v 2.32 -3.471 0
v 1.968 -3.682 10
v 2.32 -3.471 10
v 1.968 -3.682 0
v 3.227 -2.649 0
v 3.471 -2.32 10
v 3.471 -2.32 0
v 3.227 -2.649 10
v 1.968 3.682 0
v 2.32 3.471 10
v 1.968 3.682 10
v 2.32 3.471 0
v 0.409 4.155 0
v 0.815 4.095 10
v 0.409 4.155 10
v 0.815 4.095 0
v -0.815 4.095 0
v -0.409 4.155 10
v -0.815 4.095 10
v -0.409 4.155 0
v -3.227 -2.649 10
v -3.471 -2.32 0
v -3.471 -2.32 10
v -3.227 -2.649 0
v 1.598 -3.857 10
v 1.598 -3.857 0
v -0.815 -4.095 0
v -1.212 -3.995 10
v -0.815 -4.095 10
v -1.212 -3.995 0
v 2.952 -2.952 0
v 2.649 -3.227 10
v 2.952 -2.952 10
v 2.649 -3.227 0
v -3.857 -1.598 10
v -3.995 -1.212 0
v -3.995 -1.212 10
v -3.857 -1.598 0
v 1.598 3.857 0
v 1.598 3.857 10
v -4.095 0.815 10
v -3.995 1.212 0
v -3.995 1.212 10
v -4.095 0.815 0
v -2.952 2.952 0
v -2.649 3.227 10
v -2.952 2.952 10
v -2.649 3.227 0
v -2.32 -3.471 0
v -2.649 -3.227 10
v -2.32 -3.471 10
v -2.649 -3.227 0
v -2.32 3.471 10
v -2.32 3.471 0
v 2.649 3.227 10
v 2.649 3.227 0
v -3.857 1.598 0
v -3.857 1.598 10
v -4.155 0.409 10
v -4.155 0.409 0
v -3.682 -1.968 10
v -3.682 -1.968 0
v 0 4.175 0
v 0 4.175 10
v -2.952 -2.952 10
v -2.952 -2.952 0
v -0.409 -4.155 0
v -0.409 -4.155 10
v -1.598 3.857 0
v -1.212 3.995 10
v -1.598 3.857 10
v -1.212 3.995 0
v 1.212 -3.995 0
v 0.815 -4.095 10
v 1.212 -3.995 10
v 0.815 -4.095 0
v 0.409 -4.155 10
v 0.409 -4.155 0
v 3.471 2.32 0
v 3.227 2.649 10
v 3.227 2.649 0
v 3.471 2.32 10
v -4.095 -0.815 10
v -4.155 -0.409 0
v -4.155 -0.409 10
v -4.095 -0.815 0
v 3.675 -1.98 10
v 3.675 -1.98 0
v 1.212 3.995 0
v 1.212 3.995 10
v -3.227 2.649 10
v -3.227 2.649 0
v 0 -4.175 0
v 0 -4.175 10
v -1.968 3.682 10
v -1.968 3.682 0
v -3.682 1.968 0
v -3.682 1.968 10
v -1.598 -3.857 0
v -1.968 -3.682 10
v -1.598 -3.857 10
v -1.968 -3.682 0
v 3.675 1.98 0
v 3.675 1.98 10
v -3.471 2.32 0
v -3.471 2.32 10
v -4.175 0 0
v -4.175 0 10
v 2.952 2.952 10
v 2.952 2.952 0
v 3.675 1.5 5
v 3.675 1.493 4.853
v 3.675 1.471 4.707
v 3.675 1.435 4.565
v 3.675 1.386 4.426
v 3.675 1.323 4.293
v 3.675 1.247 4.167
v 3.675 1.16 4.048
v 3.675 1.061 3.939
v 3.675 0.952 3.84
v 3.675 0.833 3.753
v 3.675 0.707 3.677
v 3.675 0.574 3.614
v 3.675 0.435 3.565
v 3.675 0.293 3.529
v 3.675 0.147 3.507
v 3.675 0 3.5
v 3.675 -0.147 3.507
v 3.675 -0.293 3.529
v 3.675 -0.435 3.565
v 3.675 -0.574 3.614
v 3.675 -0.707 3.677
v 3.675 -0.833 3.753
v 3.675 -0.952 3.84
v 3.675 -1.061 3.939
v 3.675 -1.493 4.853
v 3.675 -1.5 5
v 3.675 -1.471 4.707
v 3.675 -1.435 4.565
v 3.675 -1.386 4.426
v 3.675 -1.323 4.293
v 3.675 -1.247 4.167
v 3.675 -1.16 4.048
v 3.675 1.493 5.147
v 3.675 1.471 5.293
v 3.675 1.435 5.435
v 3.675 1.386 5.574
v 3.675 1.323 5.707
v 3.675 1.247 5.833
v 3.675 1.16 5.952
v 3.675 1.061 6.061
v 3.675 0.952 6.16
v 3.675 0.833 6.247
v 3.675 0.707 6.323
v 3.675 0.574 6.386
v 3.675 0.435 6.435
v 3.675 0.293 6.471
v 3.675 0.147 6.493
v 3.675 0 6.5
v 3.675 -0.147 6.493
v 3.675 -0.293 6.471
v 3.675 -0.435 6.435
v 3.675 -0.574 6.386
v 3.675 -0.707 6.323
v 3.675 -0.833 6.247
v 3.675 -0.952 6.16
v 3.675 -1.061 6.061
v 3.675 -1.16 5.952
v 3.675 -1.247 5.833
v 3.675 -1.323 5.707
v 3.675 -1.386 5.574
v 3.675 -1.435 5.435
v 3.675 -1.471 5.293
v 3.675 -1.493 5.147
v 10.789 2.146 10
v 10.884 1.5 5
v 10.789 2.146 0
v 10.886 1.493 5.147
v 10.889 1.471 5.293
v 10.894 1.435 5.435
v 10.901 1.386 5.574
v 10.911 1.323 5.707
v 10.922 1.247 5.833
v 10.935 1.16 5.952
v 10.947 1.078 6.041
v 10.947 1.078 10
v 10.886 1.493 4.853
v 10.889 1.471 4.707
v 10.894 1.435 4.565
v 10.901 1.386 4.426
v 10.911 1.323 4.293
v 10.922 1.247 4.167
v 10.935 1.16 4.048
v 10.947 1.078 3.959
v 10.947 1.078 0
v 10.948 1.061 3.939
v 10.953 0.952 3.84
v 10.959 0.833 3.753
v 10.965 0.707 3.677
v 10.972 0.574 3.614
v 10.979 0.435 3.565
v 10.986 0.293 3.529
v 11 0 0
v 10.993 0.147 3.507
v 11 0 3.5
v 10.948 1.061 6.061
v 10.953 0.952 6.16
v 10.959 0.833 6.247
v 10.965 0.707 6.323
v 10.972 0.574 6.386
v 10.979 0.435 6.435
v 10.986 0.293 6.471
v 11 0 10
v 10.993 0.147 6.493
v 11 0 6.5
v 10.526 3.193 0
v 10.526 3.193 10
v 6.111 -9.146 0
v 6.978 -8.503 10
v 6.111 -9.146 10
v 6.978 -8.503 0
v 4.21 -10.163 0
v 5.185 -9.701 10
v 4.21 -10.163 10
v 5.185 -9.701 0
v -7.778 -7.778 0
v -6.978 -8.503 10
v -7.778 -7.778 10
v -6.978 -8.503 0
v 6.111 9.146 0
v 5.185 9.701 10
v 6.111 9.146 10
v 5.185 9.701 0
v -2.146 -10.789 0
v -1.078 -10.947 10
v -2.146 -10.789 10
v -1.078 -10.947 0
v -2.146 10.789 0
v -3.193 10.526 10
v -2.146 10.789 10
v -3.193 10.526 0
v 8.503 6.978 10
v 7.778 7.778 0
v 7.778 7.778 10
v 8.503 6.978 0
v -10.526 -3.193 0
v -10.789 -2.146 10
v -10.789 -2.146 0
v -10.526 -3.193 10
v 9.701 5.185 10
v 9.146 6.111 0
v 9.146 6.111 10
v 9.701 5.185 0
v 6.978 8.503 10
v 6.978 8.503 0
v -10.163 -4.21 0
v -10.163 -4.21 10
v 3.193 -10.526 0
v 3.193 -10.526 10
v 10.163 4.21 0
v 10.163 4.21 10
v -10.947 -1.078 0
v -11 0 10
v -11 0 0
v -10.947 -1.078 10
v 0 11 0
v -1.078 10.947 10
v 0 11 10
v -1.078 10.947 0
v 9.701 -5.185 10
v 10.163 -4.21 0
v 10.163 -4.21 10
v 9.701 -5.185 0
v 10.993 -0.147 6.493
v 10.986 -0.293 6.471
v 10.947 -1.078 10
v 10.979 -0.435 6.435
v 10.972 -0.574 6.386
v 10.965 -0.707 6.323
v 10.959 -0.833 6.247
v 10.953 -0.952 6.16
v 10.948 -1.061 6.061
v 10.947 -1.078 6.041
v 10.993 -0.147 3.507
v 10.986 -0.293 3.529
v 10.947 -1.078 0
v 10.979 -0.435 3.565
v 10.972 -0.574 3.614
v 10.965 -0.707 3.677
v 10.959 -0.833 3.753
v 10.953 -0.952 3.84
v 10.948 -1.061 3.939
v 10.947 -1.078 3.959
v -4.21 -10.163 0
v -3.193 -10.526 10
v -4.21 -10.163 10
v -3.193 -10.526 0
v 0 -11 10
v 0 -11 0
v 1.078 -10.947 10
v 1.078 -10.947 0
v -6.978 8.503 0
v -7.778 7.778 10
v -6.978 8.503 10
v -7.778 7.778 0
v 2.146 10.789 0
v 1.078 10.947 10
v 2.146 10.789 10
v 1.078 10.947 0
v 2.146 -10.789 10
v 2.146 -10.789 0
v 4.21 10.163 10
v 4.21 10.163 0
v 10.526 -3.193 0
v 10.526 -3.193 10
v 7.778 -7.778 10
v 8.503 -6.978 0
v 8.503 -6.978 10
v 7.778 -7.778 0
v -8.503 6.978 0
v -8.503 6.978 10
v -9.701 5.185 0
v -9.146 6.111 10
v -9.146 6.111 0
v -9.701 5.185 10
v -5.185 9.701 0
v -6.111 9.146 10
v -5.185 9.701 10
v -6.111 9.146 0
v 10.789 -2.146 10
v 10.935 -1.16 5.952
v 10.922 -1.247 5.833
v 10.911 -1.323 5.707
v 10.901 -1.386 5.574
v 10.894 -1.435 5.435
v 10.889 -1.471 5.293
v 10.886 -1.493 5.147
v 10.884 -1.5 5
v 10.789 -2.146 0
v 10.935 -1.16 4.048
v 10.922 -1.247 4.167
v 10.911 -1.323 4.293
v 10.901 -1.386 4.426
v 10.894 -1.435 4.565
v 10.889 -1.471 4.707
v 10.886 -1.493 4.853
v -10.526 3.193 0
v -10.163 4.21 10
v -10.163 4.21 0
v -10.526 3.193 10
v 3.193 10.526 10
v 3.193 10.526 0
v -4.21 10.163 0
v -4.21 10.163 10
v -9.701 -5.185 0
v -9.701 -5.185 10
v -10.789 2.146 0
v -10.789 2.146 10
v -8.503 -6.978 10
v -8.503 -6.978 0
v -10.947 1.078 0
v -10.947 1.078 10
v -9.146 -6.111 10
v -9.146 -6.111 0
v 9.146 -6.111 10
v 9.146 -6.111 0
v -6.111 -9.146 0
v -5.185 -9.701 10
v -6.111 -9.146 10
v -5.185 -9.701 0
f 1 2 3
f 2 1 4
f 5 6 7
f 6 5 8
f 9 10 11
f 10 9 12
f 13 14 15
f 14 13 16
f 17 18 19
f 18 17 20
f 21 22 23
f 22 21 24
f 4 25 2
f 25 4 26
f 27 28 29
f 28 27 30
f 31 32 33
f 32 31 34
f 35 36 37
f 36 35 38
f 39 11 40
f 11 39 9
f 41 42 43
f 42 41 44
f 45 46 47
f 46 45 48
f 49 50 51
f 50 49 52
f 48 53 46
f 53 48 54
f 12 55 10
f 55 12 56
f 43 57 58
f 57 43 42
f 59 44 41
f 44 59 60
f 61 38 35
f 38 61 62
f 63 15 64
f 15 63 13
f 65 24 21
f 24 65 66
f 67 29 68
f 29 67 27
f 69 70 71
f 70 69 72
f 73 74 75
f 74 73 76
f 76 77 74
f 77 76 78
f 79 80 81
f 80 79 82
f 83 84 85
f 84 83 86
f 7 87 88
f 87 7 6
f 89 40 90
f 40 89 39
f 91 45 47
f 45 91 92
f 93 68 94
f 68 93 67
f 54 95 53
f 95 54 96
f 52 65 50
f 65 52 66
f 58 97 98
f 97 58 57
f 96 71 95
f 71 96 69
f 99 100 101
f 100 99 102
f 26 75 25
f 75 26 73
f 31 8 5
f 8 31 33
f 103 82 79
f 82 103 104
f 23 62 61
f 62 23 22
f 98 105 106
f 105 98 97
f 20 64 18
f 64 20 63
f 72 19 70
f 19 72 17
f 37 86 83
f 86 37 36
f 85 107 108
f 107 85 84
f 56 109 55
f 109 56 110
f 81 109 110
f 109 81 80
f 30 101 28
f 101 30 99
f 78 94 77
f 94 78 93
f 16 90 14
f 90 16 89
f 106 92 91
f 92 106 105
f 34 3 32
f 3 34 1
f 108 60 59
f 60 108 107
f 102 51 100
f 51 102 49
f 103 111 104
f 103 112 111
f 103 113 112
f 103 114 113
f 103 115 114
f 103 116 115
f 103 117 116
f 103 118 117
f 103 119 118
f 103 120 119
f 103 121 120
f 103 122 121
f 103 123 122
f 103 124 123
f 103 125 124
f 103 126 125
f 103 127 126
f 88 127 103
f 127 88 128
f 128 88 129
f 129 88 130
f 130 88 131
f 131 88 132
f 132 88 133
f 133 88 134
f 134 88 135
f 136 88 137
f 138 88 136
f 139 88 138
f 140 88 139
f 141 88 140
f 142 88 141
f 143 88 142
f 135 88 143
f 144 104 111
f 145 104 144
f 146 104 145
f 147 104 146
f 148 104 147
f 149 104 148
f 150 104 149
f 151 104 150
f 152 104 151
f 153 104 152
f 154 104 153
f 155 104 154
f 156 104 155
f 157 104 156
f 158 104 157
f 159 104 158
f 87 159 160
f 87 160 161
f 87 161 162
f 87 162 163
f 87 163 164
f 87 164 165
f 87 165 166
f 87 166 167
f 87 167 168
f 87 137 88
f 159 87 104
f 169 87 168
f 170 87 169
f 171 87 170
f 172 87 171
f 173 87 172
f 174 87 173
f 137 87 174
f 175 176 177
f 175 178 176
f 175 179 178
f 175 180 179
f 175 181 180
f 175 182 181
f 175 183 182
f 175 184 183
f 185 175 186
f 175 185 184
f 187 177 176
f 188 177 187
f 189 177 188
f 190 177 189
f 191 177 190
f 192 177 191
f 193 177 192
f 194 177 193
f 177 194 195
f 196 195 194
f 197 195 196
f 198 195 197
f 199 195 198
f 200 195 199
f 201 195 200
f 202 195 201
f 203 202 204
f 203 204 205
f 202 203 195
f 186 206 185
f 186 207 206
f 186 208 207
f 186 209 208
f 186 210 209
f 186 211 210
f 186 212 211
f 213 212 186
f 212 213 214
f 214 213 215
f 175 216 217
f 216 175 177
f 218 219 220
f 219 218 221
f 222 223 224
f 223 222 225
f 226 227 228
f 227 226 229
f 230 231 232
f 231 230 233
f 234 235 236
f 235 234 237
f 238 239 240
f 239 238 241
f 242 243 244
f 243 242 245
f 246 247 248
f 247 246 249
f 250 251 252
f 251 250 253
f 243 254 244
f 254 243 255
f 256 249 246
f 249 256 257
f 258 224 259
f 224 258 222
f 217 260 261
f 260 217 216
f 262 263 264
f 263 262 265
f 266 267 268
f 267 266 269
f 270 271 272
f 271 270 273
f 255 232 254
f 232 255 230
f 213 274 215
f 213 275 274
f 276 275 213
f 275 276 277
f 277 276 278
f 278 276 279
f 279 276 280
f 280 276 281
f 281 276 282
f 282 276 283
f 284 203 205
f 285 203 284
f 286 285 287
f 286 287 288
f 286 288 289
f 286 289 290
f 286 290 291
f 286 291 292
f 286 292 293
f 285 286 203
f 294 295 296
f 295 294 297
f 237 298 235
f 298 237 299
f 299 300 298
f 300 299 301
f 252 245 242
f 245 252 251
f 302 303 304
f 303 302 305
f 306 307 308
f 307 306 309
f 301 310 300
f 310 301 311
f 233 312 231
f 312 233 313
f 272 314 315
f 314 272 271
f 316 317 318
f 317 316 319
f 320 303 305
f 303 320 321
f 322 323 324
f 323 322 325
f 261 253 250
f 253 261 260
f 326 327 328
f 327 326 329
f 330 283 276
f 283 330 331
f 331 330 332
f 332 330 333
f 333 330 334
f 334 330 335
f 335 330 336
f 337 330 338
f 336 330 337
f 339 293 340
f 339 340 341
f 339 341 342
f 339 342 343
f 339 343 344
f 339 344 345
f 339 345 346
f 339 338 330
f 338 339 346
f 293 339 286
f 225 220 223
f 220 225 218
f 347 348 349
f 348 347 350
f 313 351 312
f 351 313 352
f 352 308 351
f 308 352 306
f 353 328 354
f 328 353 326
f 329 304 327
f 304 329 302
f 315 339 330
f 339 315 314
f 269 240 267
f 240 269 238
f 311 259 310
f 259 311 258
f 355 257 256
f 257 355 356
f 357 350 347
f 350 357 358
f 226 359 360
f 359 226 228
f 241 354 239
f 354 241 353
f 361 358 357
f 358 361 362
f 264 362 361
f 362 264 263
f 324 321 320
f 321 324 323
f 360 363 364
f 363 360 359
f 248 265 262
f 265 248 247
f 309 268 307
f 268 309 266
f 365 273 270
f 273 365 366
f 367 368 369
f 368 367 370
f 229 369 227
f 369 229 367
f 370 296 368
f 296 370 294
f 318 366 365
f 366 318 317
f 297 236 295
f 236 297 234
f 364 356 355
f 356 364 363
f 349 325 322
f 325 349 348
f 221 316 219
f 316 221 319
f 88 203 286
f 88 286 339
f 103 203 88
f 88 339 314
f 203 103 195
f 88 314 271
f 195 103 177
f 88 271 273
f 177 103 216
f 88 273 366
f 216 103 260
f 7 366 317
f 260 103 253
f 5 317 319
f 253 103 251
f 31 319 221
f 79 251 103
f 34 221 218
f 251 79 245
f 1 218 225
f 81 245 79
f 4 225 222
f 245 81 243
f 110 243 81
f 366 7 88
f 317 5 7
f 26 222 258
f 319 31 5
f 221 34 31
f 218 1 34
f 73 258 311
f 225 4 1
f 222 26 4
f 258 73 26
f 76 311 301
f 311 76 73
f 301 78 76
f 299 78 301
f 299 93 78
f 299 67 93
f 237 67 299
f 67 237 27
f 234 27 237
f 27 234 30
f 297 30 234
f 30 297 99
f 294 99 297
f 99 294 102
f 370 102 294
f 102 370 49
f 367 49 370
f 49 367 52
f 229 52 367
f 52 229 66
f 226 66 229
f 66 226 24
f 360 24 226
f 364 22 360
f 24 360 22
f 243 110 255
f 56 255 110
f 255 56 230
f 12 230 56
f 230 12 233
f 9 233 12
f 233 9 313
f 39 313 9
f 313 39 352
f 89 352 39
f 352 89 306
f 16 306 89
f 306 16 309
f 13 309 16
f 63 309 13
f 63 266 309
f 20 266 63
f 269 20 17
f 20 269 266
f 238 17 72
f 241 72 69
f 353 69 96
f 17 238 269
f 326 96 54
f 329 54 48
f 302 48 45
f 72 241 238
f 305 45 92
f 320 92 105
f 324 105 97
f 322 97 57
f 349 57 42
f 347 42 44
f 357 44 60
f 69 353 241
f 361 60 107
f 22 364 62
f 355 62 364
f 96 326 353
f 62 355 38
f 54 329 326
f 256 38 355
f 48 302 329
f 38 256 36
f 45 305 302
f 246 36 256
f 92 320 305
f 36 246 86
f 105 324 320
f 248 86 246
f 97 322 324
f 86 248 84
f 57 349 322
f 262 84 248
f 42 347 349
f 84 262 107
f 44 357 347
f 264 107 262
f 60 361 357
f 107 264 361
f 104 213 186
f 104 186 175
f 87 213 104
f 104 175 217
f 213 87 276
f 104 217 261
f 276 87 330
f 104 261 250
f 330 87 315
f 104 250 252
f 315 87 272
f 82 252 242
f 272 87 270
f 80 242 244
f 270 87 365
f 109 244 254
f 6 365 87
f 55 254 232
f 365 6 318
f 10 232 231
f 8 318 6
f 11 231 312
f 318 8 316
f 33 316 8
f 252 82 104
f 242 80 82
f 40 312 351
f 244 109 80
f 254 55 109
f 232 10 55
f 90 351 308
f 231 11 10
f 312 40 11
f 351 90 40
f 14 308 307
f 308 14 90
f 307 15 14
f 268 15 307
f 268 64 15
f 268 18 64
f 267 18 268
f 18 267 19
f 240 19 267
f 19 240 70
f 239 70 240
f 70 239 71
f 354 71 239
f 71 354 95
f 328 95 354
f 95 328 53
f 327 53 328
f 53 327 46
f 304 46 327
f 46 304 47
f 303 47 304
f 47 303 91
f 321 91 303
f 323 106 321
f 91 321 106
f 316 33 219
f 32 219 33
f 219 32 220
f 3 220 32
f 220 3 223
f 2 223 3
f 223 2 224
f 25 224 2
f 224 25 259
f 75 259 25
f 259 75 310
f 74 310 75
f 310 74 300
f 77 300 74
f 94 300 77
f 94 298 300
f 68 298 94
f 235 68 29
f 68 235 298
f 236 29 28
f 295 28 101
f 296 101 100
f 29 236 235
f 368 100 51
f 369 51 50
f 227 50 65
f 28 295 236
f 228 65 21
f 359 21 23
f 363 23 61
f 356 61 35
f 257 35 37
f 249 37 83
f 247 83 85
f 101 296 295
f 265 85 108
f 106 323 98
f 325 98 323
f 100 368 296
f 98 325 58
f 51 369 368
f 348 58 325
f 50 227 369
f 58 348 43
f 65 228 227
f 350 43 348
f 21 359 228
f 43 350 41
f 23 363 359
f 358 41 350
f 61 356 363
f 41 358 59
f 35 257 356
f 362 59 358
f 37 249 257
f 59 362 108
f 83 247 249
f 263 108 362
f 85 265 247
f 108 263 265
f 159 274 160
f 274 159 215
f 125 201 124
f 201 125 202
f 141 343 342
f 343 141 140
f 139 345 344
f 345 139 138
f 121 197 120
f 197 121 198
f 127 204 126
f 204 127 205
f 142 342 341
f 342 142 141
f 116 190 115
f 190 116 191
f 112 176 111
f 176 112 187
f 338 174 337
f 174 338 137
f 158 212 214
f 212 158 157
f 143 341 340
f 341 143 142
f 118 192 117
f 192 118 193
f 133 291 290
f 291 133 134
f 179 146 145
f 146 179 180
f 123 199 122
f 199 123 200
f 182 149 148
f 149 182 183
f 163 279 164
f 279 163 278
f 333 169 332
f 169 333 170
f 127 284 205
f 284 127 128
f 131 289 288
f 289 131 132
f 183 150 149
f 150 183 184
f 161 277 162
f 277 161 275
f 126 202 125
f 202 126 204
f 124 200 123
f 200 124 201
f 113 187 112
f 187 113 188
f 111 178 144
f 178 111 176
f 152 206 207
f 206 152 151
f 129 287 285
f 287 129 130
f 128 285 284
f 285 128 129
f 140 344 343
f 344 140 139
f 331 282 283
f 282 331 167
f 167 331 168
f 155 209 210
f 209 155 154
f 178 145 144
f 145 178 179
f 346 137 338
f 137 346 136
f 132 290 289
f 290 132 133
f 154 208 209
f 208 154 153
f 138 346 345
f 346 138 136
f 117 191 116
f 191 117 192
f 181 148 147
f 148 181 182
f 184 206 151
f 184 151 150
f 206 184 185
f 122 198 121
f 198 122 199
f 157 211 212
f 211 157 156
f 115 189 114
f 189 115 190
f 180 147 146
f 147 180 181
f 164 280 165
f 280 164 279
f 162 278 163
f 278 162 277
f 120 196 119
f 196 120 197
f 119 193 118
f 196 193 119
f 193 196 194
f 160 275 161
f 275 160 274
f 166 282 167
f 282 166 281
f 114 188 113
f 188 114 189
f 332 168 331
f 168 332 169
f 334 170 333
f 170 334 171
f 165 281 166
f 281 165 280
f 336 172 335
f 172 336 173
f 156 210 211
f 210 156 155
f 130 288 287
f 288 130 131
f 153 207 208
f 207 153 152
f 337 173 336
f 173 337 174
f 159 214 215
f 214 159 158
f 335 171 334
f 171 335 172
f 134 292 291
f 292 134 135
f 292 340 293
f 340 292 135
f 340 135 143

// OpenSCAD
// file: parameters.scad
// =============================================================================
// Gen-BW — nightly 2026-10-10 (physics_scorer, honest magpylib watts)
// Stacked poles: two Ø20×5 per pocket (10 mm poles), 4 per rotor at R52, trading pole count for field — peak Bz at the copper rises to ≈0.73 T (vs 0.54 T on Gen-BR), which lets a thin 6.75 mm copper layer with a very deep 21 mm build carry the turns. But the electrical frequency halves, and the scorer puts it at about 45 % of Gen-BR: the thicker magnets do not make up for half the poles.
// Clocking 0 deg (magnets N facing S) + D-flat keyed bore + index notch + flip-symmetric hole map.
// Windable 2-piece bobbin; turns = physics_scorer turns_fit; copper only between flanges.
// Steel back-iron: 2× Ø134 × 6.35 mm (1/4") mild-steel discs (steel_backiron_disc.dxf); magnets sit ON the steel
// (through-pockets) -> score with --back-iron. Night 2026-10-10.
// =============================================================================
topology            = "dual_rotor";

// --- Wire / winding (physics_scorer winding-fit) -------------------------------
wire_awg            = 26;
wire_od             = 0.45;     // insulated OD mm (bare 0.405)
fill_realistic      = 0.65;     // insulated-wire area / window (DENSE layered wind with a jig; scorer cap 0.65)
turns               = 586;       // = physics_scorer turns_fit (do NOT raise)
coil_former_type    = "bobbin";
coil_core_inset     = 21.25;     // radial copper build: hub = copper boundary inset by this
wind_build_axial    = 0.0;      // nothing proud of the flanges
wind_build_radial   = 0.0;

// --- Bobbin (base + lid) ---------------------------------------------------------
coil_id_r           = 26.00;    // copper boundary sector
coil_od_r           = 74.00;
span_deg            = 52.72;    // = pitch - 2*asin((wall+0.85)/coil_id_r) -> >=1.2 mm stator web
former_web          = 6.75;     // copper height between flanges (TALL copper: steel keeps Bz up)
flange_t            = 0.80;     // >= 0.8 mm FDM wall rule (tall winds push on the flanges)
wall                = 0.80;     // flange lip beyond copper
former_bare_h       = former_web + 2 * flange_t;
coil_envelope_h     = former_bare_h + 2 * wind_build_axial;
tab_w               = 7.0;
tab_len             = 7.0;
tab_h               = former_bare_h / 2;
pin_d               = 1.9;      // 1.75 mm filament locating pin
coil_mount_r        = coil_od_r + 0.2 + 4.0;
lead_y              = 1.6;
lead_slot_w         = 0.9;
lead_groove_d       = 0.6;

// --- Gap -------------------------------------------------------------------------
run_clear           = 0.50;     // rotor face -> flange
gap_spacer_h        = run_clear + wind_build_axial;
m2m                 = coil_envelope_h + 2 * run_clear;   // rotor face to rotor face (= gap_sleeve length)

// --- Stator ----------------------------------------------------------------------
coil_stations       = 6;
bay_clear           = 0.25;
stator_thick        = former_bare_h;                        // bobbins flush both faces
stator_od           = 166;
shaft_clear_stator  = 14.0;     // stator is static; gap sleeve OD 12 spins inside

// --- Rotor(s) --------------------------------------------------------------------
magnet_Br           = 1.43;     // N52
magnet_d_large      = 20.0;
magnet_h_large      = 10.0;      // two O20x5 stacked per pocket
magnet_h_small      = 5.0;      // unused: no O5 pockets in this kit
halbach_magnetisation = "none";  // NO O5 assist magnets in this kit (scan: they lower the 4-pole score)
rotor_b_same_axis   = true;     // same-index magnets share one axis: N faces S across the gap
large_pocket_d      = 20.3;
small_pocket_d      = 5.3;
pocket_h            = 10.00;     // THROUGH the carrier: magnet back face sits on the steel disc (FLUSH seat: carrier = magnet height, magnet face level with the rotor face)
large_n             = 4;
R_large             = 52.0;
small_r_list        = [];       // no O5 pockets
carrier_od          = 134.0;
carrier_thick       = pocket_h;
hub_h               = 14.0;     // > steel_t + insert: radial set-screw clears the steel
hub_od              = 24.0;     // slim hub so the M4 brace rods fit at R~18 inside the coil ring
hub_insert_d        = 4.0;      // M3 heat-set insert, radial, bears on the D-flat
rotor_b_offset_deg  = 0.0;      // CLOCKING: magnets directly opposite
shaft_key           = "dflat";
dflat_depth         = 0.5;      // 8 mm shaft with 0.5 mm flat (7.5 across flat)
index_notch_d       = 3.0;

// --- Steel back-iron (buyable laser-cut) -------------------------------------------
steel_t             = 6.35;      // mild steel thickness (image method ignores it; sized from steel_flux.py so the return path stays well below saturation)
steel_center_hole   = 26.0;     // slips over the rotor hub (OD 24)
steel_od            = carrier_od;   // steel disc OD = rotor carrier OD

// --- Modular MAX interface ----------------------------------------------------------
shaft_bore          = 8.35;
dflat_x             = 4.0 - dflat_depth + (shaft_bore - 8.0) / 2;
bearing_d           = 21.85;
bearing_h           = 7.2;
m3_clear            = 3.5;
bolt_r_inner        = 30.0;     // M3 steel-disc clamp bolts (inside the magnet ring)
bolt_n_inner        = 4;
bolt_inner_angles   = [0, 90, 180, 270];
bolt_r_outer        = 63.0;     // second M3 steel-disc clamp ring
bolt_outer_angles   = [45, 135, 225, 315];
flange_bolt_r       = 73.0;     // frame rods: OUTSIDE the rotor OD (rotors spin inside them)
flange_bolt_n       = 6;
flange_bolt_offset  = 30.00;    // between coil stations -> never cuts a lead groove/tab
brace_r             = 18.0;
brace_d             = 4.3;      // temporary M4 jack rods (assembly only)
brace_n             = 4;
brace_angles        = [45, 135, 225, 315];          // flip-symmetric

spacer_pad_od       = 14.0;
spacer_pad_id       = m3_clear;
endbell_od          = 156.0;
endbell_thick       = 8.0;
endbell_shaft_clear = 10.0;
collar_h            = 10.0;
standoff_od         = 9.0;
frame_standoff_h    = run_clear + carrier_thick + hub_h + collar_h + 2.0;
sleeve_od           = 12.0;
plate_max_mm        = 410;

$fn = 64;
// main file
// Gen-BW — shaft collar with D-flat bore (set screw bears on the flat); print x4
include <parameters.scad>;
$fn = 64;
// D-flat keyed bore: flat faces +X (angle 0 = magnet pocket 0 = index notch)
module dflat_bore(h) {
    intersection() {
        cylinder(d=shaft_bore, h=h);
        translate([-shaft_bore, -shaft_bore, 0]) cube([shaft_bore + dflat_x, 2*shaft_bore, h]);
    }
}

od = 22; h = collar_h; set_d = 3.0;
difference() {
    cylinder(d=od, h=h);
    translate([0, 0, -0.1]) dflat_bore(h + 0.2);
    translate([0, 0, h/2]) rotate([0, 90, 0]) cylinder(d=set_d, h=od);
}
